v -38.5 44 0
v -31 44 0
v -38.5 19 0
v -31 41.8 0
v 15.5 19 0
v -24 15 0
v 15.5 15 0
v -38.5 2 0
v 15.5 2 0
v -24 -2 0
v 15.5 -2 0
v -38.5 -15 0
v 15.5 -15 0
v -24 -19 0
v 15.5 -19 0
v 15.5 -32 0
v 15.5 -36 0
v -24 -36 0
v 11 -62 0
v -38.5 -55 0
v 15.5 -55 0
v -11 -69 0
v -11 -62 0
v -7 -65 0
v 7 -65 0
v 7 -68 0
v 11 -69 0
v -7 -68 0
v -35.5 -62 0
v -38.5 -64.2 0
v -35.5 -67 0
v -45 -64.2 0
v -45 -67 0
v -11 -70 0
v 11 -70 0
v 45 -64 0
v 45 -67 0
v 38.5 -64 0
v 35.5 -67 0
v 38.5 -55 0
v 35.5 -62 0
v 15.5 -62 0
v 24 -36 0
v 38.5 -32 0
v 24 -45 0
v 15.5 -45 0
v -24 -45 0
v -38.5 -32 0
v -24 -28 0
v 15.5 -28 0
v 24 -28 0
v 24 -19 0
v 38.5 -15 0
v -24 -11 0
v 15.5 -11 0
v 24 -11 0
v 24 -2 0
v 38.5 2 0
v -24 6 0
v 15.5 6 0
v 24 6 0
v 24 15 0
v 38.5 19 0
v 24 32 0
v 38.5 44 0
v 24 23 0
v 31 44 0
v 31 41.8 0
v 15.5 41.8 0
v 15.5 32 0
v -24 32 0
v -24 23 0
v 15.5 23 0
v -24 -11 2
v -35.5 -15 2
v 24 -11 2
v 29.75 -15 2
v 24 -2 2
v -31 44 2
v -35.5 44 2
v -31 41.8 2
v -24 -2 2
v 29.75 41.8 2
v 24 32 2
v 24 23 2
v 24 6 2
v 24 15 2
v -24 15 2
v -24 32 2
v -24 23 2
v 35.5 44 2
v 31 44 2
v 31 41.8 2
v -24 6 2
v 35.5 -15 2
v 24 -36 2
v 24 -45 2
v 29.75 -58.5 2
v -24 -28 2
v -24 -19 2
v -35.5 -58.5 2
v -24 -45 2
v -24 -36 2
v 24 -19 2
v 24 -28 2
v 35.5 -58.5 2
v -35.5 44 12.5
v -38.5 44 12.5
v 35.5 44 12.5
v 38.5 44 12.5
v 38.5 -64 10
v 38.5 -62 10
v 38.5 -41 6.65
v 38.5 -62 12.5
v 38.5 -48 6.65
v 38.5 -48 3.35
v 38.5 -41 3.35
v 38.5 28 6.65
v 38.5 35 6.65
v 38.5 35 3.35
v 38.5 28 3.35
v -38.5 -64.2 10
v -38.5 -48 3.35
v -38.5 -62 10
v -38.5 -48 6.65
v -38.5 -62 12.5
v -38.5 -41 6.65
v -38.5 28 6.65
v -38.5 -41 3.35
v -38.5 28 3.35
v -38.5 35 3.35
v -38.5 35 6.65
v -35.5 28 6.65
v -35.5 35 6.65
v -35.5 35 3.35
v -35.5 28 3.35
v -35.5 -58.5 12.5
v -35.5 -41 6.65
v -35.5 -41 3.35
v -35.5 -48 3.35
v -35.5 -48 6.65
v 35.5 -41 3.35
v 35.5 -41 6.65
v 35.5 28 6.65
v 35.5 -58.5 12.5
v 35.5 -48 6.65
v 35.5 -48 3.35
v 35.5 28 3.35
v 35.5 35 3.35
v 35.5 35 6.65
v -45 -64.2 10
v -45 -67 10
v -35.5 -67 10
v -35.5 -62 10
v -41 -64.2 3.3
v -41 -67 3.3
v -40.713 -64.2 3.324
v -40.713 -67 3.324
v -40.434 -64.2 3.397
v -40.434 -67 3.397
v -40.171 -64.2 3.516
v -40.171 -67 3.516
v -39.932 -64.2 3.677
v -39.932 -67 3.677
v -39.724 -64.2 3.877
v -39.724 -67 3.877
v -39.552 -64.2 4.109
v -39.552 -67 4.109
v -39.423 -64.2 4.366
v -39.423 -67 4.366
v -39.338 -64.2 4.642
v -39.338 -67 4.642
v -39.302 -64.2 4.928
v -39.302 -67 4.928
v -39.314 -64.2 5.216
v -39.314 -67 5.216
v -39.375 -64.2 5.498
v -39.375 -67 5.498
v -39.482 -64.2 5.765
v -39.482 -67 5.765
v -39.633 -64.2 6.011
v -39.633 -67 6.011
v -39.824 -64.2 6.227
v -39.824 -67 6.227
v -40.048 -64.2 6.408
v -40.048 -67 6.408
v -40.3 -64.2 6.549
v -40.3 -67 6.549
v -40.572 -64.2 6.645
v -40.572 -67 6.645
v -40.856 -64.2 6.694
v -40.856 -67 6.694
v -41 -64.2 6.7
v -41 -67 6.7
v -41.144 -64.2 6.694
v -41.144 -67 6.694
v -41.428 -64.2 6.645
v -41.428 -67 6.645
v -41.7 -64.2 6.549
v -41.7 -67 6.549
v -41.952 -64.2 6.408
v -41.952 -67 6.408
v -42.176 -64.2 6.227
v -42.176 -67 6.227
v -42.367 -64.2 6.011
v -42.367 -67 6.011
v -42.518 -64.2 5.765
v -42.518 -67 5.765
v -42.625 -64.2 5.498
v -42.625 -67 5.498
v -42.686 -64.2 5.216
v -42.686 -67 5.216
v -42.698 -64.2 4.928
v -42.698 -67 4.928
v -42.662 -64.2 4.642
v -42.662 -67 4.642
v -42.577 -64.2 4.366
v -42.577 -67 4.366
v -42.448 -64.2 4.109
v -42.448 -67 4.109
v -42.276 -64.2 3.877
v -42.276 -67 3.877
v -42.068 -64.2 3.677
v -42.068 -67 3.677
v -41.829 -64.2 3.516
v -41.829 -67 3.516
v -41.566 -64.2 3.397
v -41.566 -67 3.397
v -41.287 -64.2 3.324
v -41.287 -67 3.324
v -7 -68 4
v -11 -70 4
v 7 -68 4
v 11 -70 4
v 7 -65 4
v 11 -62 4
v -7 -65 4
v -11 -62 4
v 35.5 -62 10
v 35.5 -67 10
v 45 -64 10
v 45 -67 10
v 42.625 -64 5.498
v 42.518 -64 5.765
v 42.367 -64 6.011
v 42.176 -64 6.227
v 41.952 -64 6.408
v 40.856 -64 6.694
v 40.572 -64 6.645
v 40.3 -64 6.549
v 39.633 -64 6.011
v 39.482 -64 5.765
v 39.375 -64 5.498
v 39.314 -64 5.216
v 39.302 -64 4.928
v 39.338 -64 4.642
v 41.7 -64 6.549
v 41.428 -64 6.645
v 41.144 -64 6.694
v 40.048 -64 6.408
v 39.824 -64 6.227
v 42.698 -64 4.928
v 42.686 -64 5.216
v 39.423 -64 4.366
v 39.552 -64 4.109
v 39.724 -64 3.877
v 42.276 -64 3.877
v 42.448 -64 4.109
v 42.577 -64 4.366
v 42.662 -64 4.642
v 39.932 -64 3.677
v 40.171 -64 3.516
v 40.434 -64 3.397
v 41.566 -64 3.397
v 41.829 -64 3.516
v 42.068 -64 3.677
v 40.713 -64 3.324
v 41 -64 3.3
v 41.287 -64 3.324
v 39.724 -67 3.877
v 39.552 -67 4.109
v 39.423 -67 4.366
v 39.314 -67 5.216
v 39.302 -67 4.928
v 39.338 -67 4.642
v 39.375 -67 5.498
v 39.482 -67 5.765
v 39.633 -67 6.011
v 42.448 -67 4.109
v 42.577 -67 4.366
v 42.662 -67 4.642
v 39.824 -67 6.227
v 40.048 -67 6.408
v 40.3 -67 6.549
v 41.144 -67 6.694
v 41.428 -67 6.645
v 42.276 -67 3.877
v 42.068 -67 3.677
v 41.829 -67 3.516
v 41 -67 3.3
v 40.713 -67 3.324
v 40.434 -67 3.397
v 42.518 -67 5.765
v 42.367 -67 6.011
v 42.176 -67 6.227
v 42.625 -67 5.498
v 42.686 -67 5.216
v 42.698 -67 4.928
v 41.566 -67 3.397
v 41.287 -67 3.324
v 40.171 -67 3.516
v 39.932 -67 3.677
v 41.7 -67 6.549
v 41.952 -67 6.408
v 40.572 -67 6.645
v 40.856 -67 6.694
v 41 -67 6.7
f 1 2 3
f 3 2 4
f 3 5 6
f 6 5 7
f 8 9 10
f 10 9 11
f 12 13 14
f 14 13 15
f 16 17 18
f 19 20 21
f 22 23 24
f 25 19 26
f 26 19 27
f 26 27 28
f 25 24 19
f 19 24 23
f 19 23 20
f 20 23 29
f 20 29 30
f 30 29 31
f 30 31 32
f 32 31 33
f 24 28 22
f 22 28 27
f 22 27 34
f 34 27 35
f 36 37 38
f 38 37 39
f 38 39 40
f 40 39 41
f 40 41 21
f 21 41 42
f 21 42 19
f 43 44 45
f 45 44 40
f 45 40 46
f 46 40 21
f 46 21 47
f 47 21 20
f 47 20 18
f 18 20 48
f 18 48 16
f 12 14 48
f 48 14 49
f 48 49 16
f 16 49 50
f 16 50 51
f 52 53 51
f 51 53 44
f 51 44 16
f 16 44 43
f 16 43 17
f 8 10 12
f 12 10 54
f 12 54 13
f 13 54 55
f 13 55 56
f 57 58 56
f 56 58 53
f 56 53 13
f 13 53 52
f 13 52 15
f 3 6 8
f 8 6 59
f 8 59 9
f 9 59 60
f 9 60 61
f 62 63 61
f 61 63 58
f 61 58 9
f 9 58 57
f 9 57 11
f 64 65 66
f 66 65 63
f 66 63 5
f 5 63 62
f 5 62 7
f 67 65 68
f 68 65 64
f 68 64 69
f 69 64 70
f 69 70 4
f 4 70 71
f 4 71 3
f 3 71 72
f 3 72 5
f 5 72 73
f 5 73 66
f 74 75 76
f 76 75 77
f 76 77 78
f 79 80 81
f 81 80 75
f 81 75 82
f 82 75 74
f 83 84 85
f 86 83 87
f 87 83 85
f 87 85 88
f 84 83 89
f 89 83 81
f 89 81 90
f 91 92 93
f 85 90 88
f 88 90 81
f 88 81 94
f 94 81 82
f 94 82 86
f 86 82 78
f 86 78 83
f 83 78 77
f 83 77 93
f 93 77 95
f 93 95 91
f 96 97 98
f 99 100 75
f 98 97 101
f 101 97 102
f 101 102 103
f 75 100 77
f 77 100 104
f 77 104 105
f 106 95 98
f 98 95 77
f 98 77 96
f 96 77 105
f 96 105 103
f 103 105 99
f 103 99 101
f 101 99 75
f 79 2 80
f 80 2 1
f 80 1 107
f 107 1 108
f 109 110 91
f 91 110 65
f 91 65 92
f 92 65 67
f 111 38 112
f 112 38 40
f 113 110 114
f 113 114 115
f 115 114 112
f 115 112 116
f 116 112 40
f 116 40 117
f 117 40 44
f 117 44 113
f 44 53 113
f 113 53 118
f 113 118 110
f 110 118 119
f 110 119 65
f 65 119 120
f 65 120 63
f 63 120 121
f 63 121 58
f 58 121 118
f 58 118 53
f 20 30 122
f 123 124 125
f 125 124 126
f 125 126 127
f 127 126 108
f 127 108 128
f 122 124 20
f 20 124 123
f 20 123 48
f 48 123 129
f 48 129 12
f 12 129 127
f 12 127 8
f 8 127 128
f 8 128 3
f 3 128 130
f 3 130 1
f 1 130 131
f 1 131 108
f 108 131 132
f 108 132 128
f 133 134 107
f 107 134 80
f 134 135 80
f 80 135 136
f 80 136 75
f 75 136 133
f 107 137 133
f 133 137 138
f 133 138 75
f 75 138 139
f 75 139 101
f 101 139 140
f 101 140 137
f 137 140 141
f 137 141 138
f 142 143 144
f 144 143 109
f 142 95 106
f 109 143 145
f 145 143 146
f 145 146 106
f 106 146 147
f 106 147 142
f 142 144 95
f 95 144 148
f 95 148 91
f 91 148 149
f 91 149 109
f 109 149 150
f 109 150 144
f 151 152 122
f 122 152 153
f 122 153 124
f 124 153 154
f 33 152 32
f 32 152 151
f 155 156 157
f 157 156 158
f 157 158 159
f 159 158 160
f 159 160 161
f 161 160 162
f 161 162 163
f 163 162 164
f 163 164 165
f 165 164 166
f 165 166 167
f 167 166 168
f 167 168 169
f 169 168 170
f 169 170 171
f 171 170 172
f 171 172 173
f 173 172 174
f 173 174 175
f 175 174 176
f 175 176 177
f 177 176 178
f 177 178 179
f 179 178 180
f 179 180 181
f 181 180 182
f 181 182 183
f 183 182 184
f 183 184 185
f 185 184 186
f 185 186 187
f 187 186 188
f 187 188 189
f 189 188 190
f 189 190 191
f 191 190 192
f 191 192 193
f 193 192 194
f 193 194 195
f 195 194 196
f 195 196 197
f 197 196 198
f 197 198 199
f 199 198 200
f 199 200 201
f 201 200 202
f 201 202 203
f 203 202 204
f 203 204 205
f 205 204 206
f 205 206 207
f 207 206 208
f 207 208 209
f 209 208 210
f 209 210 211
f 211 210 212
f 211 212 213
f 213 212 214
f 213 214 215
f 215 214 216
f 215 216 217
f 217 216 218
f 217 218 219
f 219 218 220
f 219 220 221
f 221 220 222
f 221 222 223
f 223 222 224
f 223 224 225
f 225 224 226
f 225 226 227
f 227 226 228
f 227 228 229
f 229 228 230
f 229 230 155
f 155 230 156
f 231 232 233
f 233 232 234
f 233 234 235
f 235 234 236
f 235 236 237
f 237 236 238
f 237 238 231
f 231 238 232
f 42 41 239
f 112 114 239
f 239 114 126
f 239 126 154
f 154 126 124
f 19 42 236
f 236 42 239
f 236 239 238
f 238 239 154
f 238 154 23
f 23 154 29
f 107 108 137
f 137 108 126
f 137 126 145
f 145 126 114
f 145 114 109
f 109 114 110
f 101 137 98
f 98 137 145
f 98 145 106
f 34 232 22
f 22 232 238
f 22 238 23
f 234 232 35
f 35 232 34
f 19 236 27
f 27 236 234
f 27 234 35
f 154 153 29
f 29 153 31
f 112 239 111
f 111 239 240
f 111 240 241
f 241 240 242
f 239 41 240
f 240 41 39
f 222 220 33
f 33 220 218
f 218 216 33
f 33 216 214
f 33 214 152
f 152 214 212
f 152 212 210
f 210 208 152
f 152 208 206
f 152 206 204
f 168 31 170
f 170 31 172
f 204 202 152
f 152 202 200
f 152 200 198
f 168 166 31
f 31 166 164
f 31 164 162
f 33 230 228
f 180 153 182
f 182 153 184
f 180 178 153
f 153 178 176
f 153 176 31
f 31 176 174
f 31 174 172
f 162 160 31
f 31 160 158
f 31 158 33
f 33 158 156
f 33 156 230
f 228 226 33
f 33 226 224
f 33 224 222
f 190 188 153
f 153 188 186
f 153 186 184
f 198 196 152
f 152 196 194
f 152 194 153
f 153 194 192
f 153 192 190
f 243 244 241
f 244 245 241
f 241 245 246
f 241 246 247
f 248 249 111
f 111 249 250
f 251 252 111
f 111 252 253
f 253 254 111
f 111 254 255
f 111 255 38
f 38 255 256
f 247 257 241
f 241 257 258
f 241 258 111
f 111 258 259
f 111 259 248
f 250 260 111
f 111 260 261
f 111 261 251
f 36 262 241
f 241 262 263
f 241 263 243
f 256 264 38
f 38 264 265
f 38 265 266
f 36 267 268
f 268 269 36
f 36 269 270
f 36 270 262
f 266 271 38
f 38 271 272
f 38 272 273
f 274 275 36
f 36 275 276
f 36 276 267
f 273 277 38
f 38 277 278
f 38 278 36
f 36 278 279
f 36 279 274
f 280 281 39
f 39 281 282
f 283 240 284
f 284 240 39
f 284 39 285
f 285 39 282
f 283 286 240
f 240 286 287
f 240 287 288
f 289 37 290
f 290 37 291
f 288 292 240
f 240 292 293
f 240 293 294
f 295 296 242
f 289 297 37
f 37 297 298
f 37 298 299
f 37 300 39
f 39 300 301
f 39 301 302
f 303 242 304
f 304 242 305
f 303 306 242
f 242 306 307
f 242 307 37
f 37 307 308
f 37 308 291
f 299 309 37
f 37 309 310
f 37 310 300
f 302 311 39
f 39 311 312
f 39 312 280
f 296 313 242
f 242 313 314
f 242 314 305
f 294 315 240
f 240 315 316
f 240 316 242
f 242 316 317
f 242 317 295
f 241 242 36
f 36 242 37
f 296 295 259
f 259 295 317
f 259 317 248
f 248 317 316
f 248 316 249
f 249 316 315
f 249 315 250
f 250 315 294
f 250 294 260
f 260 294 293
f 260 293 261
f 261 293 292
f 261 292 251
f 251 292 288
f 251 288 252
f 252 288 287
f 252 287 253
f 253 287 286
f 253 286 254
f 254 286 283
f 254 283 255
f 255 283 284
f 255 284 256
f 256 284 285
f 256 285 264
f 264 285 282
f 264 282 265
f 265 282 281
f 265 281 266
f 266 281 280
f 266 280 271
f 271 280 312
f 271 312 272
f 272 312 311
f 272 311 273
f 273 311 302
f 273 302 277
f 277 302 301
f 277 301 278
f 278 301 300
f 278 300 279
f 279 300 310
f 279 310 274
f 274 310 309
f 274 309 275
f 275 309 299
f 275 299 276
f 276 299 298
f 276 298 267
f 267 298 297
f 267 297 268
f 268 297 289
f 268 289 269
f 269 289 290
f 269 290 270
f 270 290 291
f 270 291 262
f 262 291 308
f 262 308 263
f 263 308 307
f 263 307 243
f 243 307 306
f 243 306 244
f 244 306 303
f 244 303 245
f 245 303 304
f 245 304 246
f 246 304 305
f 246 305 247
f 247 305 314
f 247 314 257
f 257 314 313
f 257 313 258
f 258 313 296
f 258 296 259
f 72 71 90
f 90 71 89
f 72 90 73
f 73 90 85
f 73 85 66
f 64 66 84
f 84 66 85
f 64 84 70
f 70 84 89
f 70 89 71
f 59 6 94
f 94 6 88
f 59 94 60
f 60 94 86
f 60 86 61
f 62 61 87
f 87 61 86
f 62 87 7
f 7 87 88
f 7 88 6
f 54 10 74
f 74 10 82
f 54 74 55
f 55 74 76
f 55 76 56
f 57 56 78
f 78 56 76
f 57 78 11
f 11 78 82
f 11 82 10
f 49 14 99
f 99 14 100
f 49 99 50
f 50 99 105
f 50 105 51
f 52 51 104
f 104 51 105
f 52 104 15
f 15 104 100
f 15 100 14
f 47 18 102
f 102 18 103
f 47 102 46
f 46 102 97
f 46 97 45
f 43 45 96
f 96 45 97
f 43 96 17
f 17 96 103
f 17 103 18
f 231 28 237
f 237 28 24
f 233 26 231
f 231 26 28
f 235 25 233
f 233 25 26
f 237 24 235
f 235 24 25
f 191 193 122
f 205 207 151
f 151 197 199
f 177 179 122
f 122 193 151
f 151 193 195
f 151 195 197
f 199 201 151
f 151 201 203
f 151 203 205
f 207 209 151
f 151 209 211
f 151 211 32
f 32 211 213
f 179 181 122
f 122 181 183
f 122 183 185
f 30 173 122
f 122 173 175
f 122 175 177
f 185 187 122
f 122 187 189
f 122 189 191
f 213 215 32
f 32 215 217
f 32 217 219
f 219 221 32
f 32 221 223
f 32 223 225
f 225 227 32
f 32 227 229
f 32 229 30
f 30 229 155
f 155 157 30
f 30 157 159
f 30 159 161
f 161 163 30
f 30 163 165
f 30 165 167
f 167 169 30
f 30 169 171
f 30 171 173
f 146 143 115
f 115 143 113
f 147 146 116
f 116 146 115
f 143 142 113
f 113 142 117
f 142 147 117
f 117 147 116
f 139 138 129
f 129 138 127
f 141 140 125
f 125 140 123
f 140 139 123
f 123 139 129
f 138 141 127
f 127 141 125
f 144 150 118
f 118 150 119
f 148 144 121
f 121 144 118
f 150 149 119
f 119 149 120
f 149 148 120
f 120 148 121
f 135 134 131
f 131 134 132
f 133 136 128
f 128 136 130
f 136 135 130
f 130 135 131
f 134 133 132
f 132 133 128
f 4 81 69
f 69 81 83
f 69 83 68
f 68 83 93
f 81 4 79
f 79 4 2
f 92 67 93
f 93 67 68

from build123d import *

# Parameters (mm, degrees)
SKETCH_1_W                          = 77
SKETCH_1_H                          = 106
TRAY_FLOOR_1_DEPTH                  = 2
SKETCH_2_W                          = 3
SKETCH_2_H                          = 106
LEFT_RETAINER_2_DEPTH               = 10.5
SKETCH_3_W                          = 3
SKETCH_3_H                          = 106
RIGHT_RETAINER_3_DEPTH              = 10.5
SKETCH_4_W                          = 71
SKETCH_4_H                          = 3.5
FRONT_RETAINER_4_DEPTH              = 10.5
SKETCH_5_W                          = 22
SKETCH_5_H                          = 8
PULL_HANDLE_5_DEPTH                 = 4
SKETCH_6_W                          = 3
SKETCH_6_H                          = 5
LEFT_EAR_BRIDGE_6_DEPTH             = 10
SKETCH_7_W                          = 3
SKETCH_7_H                          = 5
RIGHT_EAR_BRIDGE_7_DEPTH            = 10
SKETCH_8_W                          = 9.5
SKETCH_8_H                          = 3.5
LEFT_LOCK_EAR_8_DEPTH               = 10
SKETCH_9_W                          = 9.5
SKETCH_9_H                          = 3
RIGHT_LOCK_EAR_9_DEPTH              = 10
SKETCH_10_R                         = 1.7
TRAY_LOCK_M3_CLEARANCE_10_DEPTH     = 5
SKETCH_11_W                         = 48
SKETCH_11_H                         = 9
TRAY_AIRFLOW_11_DEPTH               = 4
SKETCH_12_R                         = 1.65
DRIVE_SIDE_M3_12_DEPTH              = 80
SKETCH_13_W                         = 14
SKETCH_13_H                         = 3
HANDLE_GRIP_13_DEPTH                = 6
SKETCH_14_W                         = 7.5
SKETCH_14_H                         = 4.2
LEFT_FLANGE_CLEARANCE_1_DEPTH       = 15
SKETCH_16_W                         = 3.3
SKETCH_16_H                         = 7
FRONT_ADJUSTABLE_M3_SLOT_1_DEPTH    = 80
SKETCH_17_W                         = 3.3
SKETCH_17_H                         = 7
REAR_ADJUSTABLE_M3_SLOT_2_DEPTH     = 80
SKETCH_18_W                         = 62
SKETCH_18_H                         = 3.2
SATA_PLUG_LOWER_CLEARANCE_301_DEPTH = 5


with BuildPart() as part:
    # Эскиз1 → Tray_floor_1 (new body)
    with BuildSketch(Plane.XY):
        with Locations((0, -9)):
            Rectangle(SKETCH_1_W, SKETCH_1_H)
    extrude(amount=TRAY_FLOOR_1_DEPTH)

    # Эскиз2 → Left_retainer_2 (add)
    with BuildSketch(Plane.XY.offset(2)):
        with Locations((-37, -9)):
            Rectangle(SKETCH_2_W, SKETCH_2_H)
    extrude(amount=LEFT_RETAINER_2_DEPTH)

    # Эскиз3 → Right_retainer_3 (add)
    with BuildSketch(Plane.XY.offset(2)):
        with Locations((37, -9)):
            Rectangle(SKETCH_3_W, SKETCH_3_H)
    extrude(amount=RIGHT_RETAINER_3_DEPTH)

    # Эскиз4 → Front_retainer_4 (add)
    with BuildSketch(Plane.XY.offset(2)):
        with Locations((0, -60.25)):
            Rectangle(SKETCH_4_W, SKETCH_4_H)
    extrude(amount=FRONT_RETAINER_4_DEPTH)

    # Эскиз5 → Pull_handle_5 (add)
    with BuildSketch(Plane.XY):
        with Locations((0, -66)):
            Rectangle(SKETCH_5_W, SKETCH_5_H)
    extrude(amount=PULL_HANDLE_5_DEPTH)

    # Эскиз6 → Left_ear_bridge_6 (add)
    with BuildSketch(Plane.XY):
        with Locations((-37, -62.5)):
            Rectangle(SKETCH_6_W, SKETCH_6_H)
    extrude(amount=LEFT_EAR_BRIDGE_6_DEPTH)

    # Эскиз7 → Right_ear_bridge_7 (add)
    with BuildSketch(Plane.XY):
        with Locations((37, -62.5)):
            Rectangle(SKETCH_7_W, SKETCH_7_H)
    extrude(amount=RIGHT_EAR_BRIDGE_7_DEPTH)

    # Эскиз8 → Left_lock_ear_8 (add)
    with BuildSketch(Plane.XY):
        with Locations((-40.25, -65.25)):
            Rectangle(SKETCH_8_W, SKETCH_8_H)
    extrude(amount=LEFT_LOCK_EAR_8_DEPTH)

    # Эскиз9 → Right_lock_ear_9 (add)
    with BuildSketch(Plane.XY):
        with Locations((40.25, -65.5)):
            Rectangle(SKETCH_9_W, SKETCH_9_H)
    extrude(amount=RIGHT_LOCK_EAR_9_DEPTH)

    # Эскиз10 → Tray_lock_M3_clearance_10 (cut)
    with BuildSketch(Plane(origin=(0, -68, 0), x_dir=(1, 0, 0), z_dir=(0, 1, 0))):
        with Locations(Location((-41, -5, 0), (0, 0, 90))):
            Circle(SKETCH_10_R)
        with Locations(Location((41, -5, 0), (0, 0, 90))):
            Circle(SKETCH_10_R)
    extrude(amount=TRAY_LOCK_M3_CLEARANCE_10_DEPTH, mode=Mode.SUBTRACT)

    # Эскиз11 → Tray_airflow_11 (cut)
    with BuildSketch(Plane.XY.offset(-1)):
        with Locations((0, -40.5)):
            Rectangle(SKETCH_11_W, SKETCH_11_H)
        with Locations((0, -23.5)):
            Rectangle(SKETCH_11_W, SKETCH_11_H)
        with Locations((0, -6.5)):
            Rectangle(SKETCH_11_W, SKETCH_11_H)
        with Locations((0, 10.5)):
            Rectangle(SKETCH_11_W, SKETCH_11_H)
        with Locations((0, 27.5)):
            Rectangle(SKETCH_11_W, SKETCH_11_H)
    extrude(amount=TRAY_AIRFLOW_11_DEPTH, mode=Mode.SUBTRACT)

    # Эскиз12 → Drive_side_M3_12 (cut)
    with BuildSketch(Plane(origin=(-40, 0, 0), x_dir=(0, 0, -1), z_dir=(1, 0, 0))):
        with Locations(Location((-5, -45.55, 0), (0, 0, 180))):
            Circle(SKETCH_12_R)
        with Locations(Location((-5, 31.05, 0), (0, 0, 180))):
            Circle(SKETCH_12_R)
    extrude(amount=DRIVE_SIDE_M3_12_DEPTH, mode=Mode.SUBTRACT)

    # Эскиз13 → Handle_grip_13 (cut)
    with BuildSketch(Plane.XY.offset(-1)):
        with Locations((0, -66.5)):
            Rectangle(SKETCH_13_W, SKETCH_13_H)
    extrude(amount=HANDLE_GRIP_13_DEPTH, mode=Mode.SUBTRACT)

    # Эскиз14 → Left_flange_clearance_1 (cut)
    with BuildSketch(Plane.XY.offset(-1)):
        with Locations((-42.25, -62.1)):
            Rectangle(SKETCH_14_W, SKETCH_14_H)
    extrude(amount=LEFT_FLANGE_CLEARANCE_1_DEPTH, mode=Mode.SUBTRACT)

    # Эскиз16 → Front_adjustable_M3_slot_1 (cut)
    with BuildSketch(Plane(origin=(-40, 0, 0), x_dir=(0, 0, -1), z_dir=(1, 0, 0))):
        with Locations((-5, -44.5)):
            Rectangle(SKETCH_16_W, SKETCH_16_H)
    extrude(amount=FRONT_ADJUSTABLE_M3_SLOT_1_DEPTH, mode=Mode.SUBTRACT)

    # Эскиз17 → Rear_adjustable_M3_slot_2 (cut)
    with BuildSketch(Plane(origin=(-40, 0, 0), x_dir=(0, 0, -1), z_dir=(1, 0, 0))):
        with Locations((-5, 31.5)):
            Rectangle(SKETCH_17_W, SKETCH_17_H)
    extrude(amount=REAR_ADJUSTABLE_M3_SLOT_2_DEPTH, mode=Mode.SUBTRACT)

    # Эскиз18 → SATA_plug_lower_clearance_301 (cut)
    with BuildSketch(Plane.XY.offset(-1)):
        with Locations((0, 43.4)):
            Rectangle(SKETCH_18_W, SKETCH_18_H)
    extrude(amount=SATA_PLUG_LOWER_CLEARANCE_301_DEPTH, mode=Mode.SUBTRACT)


solid = part.part
